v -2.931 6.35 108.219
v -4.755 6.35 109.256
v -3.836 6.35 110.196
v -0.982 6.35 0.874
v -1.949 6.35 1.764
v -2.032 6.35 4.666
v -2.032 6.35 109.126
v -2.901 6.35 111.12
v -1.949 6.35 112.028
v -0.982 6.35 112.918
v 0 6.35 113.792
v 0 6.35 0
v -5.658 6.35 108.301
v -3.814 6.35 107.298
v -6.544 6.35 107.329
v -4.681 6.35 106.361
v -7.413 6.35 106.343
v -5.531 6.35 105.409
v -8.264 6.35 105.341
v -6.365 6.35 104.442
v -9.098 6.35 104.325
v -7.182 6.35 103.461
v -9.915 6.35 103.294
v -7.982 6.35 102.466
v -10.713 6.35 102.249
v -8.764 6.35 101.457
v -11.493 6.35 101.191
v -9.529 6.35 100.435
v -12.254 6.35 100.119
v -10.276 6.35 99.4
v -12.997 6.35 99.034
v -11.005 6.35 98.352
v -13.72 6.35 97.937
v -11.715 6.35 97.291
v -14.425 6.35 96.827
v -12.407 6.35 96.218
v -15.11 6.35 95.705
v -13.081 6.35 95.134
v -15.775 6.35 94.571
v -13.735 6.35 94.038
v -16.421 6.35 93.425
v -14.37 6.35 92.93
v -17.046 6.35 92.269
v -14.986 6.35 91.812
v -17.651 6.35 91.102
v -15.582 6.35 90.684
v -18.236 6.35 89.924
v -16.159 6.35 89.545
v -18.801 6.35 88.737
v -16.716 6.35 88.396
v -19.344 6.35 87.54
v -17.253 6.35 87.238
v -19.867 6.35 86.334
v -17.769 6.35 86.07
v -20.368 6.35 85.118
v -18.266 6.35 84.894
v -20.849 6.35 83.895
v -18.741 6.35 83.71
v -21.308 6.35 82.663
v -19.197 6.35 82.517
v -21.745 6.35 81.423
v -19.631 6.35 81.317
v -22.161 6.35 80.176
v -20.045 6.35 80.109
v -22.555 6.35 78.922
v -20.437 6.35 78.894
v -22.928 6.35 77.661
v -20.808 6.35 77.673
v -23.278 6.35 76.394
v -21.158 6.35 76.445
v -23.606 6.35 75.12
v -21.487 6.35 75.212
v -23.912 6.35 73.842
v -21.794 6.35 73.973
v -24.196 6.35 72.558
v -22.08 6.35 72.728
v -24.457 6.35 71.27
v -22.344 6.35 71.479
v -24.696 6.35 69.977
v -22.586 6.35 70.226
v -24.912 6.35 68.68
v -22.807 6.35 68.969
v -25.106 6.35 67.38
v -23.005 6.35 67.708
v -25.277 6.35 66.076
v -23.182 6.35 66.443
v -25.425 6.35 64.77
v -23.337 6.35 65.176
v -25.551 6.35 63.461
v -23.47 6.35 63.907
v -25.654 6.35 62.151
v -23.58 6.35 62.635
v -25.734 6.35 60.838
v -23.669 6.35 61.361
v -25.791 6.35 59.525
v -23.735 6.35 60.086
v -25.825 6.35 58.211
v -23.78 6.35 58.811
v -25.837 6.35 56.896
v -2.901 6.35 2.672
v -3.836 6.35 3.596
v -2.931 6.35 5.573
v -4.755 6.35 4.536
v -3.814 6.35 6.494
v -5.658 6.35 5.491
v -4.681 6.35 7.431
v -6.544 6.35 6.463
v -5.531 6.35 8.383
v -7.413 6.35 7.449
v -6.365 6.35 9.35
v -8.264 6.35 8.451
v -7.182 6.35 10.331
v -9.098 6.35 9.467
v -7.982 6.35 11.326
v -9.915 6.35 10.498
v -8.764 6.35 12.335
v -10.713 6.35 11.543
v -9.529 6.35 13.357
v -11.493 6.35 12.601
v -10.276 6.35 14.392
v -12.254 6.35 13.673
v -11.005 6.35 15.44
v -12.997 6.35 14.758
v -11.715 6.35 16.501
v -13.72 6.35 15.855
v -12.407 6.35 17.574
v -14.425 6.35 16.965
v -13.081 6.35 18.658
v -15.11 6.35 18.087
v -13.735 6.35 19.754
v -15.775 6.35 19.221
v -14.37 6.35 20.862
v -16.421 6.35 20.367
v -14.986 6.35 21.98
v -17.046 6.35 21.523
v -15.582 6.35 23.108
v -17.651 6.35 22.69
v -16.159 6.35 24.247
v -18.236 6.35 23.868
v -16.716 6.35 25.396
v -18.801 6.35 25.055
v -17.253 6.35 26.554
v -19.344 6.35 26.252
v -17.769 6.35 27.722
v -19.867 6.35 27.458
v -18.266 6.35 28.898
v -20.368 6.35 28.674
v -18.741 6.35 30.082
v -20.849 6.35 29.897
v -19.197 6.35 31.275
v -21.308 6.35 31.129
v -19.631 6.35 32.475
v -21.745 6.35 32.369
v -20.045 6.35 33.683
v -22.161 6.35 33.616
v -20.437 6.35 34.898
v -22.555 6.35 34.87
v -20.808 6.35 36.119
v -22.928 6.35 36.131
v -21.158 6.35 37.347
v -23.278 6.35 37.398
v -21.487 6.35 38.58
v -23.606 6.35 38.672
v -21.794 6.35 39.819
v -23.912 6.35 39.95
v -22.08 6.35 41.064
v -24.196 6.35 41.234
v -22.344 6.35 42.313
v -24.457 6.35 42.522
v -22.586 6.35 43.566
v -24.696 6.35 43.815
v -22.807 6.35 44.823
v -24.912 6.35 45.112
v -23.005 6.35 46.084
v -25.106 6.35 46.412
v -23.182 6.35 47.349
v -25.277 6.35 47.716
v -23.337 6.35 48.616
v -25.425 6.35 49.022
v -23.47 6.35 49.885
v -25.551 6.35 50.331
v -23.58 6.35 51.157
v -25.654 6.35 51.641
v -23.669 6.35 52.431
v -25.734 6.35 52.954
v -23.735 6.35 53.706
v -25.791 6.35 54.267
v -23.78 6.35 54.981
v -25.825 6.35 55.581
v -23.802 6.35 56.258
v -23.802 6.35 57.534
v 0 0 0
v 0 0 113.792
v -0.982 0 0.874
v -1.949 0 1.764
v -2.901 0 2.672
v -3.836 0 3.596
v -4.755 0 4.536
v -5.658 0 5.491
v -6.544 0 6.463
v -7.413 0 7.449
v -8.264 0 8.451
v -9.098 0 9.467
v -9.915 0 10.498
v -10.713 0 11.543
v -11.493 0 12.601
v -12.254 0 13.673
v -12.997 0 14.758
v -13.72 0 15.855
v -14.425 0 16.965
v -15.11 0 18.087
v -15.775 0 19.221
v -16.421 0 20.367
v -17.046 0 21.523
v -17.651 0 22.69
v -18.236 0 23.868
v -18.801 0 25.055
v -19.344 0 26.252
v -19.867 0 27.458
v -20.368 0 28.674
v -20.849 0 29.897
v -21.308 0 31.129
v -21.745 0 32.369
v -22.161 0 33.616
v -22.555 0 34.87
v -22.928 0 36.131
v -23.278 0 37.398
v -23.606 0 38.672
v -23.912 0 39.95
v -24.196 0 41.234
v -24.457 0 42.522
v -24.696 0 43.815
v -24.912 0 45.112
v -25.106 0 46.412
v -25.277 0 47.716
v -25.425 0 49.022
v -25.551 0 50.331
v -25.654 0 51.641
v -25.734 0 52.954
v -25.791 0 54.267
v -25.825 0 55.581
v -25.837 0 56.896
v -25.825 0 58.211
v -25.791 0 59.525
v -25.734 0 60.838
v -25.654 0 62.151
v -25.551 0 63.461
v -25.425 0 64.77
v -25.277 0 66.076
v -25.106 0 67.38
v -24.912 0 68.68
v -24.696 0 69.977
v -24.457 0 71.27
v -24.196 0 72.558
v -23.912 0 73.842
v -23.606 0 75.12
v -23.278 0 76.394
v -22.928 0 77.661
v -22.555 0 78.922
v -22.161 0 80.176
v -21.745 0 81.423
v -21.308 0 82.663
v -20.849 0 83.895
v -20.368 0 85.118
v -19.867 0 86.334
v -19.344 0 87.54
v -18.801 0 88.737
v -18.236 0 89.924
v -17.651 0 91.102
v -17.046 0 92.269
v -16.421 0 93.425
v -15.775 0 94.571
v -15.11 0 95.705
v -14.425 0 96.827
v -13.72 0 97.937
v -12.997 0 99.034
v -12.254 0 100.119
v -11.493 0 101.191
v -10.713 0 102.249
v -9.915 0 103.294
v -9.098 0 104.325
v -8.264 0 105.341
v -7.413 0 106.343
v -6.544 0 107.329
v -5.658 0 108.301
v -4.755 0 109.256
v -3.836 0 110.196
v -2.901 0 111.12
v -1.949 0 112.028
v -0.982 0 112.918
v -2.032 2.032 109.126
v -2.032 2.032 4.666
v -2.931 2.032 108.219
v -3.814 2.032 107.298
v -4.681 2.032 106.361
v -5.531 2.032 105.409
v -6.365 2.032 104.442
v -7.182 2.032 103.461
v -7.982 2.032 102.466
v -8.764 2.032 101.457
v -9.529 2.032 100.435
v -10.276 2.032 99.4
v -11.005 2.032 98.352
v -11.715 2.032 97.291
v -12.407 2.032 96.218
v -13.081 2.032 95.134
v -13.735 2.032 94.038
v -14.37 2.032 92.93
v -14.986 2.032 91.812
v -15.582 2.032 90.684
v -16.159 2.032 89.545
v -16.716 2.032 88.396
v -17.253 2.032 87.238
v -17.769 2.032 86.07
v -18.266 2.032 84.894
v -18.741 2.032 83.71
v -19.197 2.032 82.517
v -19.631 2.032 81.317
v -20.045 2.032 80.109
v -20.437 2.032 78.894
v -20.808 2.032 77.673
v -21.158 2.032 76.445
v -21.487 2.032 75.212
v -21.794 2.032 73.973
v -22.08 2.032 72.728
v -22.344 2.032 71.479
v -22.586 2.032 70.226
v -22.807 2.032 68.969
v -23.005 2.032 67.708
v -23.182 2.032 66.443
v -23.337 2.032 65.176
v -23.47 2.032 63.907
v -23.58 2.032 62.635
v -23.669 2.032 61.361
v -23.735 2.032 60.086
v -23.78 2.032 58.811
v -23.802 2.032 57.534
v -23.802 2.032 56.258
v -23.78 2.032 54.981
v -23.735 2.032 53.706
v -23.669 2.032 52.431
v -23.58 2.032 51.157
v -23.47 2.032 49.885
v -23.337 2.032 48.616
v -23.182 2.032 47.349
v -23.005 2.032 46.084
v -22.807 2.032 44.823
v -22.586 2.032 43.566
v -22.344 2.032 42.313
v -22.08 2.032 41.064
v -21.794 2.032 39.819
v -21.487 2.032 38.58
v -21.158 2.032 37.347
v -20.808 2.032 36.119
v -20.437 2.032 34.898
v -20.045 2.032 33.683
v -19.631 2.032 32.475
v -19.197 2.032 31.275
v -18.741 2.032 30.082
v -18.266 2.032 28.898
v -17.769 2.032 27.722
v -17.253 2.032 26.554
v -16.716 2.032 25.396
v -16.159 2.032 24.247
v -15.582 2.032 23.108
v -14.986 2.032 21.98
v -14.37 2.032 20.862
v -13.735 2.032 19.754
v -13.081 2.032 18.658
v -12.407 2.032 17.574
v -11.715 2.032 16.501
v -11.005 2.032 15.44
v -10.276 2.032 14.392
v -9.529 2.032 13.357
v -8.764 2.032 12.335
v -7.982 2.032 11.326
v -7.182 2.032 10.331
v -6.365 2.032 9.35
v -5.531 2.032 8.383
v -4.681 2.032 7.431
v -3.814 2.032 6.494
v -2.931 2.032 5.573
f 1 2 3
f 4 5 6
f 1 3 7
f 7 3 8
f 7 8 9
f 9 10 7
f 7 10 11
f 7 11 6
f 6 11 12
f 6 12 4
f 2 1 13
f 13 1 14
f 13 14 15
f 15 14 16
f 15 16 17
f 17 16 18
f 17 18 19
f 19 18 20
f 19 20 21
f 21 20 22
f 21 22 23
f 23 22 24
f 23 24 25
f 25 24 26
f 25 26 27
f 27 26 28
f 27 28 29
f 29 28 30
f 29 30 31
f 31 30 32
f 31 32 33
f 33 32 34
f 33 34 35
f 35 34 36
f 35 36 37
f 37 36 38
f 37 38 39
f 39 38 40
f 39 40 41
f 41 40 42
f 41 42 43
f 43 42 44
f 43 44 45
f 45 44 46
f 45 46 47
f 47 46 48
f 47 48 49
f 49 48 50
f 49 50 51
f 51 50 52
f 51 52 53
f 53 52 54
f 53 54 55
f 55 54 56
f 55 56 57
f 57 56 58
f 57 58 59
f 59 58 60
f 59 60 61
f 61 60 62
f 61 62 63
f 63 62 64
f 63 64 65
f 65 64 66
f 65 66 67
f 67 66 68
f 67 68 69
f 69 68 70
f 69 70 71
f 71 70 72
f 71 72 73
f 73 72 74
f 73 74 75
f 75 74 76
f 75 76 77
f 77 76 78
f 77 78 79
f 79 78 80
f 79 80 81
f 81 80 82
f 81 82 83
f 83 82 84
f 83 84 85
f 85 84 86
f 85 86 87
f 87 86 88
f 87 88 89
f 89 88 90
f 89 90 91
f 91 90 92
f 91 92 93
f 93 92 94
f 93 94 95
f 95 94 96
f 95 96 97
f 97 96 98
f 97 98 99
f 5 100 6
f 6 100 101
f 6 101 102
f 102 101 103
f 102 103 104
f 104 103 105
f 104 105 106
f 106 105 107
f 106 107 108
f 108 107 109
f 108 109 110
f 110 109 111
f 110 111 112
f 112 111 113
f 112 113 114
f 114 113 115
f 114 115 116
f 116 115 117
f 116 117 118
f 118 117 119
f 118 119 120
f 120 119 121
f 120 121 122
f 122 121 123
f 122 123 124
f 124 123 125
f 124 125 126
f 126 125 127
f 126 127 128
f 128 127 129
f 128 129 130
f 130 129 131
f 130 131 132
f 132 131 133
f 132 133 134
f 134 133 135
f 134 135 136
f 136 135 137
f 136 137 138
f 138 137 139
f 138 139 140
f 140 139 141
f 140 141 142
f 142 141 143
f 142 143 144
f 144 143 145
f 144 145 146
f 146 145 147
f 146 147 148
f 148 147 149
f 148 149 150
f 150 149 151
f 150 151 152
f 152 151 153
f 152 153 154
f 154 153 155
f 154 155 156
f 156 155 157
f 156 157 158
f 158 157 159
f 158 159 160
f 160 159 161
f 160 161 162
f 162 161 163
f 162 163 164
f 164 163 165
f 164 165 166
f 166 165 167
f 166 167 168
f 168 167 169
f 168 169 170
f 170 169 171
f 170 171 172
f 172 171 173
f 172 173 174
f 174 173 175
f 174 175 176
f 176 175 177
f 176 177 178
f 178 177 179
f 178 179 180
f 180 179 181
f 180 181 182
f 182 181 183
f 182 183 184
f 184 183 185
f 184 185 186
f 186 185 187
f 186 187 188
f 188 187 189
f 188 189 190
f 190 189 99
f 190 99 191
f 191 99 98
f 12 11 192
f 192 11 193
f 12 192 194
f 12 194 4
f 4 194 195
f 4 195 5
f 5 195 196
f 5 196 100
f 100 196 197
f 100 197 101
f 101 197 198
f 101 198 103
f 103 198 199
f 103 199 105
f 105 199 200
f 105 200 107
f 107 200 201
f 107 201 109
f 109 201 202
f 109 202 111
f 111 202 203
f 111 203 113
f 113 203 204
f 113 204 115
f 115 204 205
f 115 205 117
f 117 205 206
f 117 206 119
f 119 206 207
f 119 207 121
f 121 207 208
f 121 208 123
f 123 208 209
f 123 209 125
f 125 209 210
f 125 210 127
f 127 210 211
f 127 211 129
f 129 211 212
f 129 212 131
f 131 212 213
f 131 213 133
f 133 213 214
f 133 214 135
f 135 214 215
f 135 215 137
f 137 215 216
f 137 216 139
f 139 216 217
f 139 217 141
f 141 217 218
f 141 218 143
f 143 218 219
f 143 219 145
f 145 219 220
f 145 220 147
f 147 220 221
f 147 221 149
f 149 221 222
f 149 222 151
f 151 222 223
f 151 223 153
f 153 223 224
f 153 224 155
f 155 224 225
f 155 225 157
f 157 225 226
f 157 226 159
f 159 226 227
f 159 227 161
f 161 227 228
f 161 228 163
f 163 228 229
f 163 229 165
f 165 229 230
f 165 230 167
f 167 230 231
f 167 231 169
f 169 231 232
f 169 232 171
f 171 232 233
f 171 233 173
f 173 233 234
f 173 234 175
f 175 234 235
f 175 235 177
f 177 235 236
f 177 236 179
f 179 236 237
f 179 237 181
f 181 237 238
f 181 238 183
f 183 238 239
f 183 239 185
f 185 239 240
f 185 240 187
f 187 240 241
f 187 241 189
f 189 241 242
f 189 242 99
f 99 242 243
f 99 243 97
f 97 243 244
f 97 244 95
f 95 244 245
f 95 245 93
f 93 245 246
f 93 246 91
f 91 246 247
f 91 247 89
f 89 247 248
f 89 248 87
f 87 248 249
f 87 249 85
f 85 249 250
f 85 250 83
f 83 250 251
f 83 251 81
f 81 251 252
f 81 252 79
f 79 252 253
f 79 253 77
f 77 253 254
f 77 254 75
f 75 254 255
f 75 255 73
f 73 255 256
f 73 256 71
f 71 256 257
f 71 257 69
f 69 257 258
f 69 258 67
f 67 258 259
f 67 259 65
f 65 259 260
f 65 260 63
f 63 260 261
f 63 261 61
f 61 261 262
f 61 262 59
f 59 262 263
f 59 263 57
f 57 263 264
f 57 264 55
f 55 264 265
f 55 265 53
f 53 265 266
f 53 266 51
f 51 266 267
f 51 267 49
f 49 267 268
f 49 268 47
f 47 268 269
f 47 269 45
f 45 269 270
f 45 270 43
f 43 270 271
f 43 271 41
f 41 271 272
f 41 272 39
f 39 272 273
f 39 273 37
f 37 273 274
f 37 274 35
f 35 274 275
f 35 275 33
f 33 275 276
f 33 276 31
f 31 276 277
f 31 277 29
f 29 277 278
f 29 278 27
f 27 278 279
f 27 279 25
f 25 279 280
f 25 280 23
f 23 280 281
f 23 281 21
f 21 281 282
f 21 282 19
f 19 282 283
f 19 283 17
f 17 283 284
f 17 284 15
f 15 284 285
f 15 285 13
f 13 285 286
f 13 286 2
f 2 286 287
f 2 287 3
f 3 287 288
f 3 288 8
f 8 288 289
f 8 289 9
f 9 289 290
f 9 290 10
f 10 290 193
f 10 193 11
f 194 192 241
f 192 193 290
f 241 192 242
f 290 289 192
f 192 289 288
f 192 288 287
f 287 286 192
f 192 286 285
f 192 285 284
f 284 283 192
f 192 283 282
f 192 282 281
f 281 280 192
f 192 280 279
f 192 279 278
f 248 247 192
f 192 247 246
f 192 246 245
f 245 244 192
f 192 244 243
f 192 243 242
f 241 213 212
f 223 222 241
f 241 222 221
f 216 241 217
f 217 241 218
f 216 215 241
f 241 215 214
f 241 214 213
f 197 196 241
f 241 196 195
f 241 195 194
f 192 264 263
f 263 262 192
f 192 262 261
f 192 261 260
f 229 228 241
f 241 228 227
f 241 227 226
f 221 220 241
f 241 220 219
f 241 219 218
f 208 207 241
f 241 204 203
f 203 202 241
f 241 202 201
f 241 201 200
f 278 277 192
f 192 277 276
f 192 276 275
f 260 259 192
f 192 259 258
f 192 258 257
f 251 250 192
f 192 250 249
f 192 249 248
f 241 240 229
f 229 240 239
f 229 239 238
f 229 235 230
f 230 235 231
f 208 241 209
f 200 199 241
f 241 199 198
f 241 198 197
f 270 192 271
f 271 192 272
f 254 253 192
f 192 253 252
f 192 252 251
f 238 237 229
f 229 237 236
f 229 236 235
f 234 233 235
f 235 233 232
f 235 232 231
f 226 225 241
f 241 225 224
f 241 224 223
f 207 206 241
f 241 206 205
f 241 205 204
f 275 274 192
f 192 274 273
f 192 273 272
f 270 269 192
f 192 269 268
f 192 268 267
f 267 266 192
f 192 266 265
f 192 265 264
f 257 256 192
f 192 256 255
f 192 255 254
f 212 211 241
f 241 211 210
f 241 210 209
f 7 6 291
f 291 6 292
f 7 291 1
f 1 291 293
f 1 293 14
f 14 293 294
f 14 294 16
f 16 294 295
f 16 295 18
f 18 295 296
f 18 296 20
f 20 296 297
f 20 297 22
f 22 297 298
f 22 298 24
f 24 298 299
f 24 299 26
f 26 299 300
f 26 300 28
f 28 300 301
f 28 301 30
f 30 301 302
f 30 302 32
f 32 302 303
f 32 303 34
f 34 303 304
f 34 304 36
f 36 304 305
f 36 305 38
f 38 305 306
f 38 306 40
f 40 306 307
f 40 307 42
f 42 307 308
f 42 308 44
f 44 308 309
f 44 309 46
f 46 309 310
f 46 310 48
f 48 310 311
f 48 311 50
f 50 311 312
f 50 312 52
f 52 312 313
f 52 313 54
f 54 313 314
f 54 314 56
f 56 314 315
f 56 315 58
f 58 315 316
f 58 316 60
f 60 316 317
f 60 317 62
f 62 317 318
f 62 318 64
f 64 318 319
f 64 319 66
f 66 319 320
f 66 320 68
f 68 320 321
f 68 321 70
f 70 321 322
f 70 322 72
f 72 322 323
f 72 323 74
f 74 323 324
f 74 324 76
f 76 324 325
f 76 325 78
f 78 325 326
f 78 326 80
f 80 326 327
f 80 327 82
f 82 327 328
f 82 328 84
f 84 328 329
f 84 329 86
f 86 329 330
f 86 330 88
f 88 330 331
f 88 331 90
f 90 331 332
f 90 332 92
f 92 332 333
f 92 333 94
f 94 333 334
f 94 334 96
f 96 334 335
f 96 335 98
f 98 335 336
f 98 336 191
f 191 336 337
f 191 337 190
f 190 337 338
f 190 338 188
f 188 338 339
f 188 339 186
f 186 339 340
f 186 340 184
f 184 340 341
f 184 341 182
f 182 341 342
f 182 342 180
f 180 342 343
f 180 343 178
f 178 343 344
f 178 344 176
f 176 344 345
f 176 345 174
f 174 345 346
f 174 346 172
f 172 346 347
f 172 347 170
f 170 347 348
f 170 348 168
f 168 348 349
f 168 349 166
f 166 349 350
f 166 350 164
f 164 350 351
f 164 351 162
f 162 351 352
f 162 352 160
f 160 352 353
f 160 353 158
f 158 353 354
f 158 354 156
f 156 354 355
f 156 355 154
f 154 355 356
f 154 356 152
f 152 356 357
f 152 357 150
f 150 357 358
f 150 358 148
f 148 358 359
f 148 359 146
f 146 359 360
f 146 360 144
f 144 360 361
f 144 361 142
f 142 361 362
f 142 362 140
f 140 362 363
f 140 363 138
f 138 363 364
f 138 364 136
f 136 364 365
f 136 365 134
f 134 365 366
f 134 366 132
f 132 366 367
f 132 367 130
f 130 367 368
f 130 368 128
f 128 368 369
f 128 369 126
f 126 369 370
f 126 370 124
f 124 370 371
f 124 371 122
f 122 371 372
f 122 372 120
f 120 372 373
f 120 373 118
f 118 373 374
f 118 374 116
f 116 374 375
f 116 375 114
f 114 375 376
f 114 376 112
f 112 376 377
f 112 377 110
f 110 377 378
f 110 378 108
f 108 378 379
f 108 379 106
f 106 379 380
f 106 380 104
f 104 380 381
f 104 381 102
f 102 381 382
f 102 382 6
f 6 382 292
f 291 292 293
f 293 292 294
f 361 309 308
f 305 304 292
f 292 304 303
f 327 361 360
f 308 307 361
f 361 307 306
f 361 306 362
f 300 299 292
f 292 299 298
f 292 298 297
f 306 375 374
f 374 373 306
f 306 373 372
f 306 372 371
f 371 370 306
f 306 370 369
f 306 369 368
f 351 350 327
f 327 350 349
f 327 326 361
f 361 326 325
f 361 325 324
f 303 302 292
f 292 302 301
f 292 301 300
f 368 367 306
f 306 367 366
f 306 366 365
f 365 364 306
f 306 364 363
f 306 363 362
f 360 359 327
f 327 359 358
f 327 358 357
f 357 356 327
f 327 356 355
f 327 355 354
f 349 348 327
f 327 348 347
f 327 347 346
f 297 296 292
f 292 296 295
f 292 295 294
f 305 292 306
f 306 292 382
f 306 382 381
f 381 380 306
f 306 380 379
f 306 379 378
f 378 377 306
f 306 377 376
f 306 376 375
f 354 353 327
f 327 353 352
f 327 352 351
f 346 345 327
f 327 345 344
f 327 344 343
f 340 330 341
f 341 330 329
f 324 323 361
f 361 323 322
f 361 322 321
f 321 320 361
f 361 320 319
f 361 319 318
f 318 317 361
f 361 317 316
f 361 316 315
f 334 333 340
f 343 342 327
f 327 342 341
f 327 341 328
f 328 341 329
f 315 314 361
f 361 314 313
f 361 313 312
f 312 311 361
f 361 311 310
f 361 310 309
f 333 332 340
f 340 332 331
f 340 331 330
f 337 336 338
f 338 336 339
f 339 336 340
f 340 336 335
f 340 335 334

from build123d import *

# Parameters (mm, degrees)
BOSS_EXTRUDE1_DEPTH = 6.35
SHELL1_T            = -2.032


with BuildPart() as part:
    # Sketch1 → Boss-Extrude1 (new body)
    with BuildSketch(Plane(origin=(0, 0, 0), x_dir=(1, 0, 0), z_dir=(0, 1, 0))):
        with BuildLine():
            Line((0, -113.792), (0, 0))
            ThreePointArc((0, 0), (-25.836593541, -56.896), (0, -113.792))
        make_face()
    extrude(amount=BOSS_EXTRUDE1_DEPTH)

    # Shell1
    shell1_openings = [part.faces().sort_by_distance(p)[0] for p in [
        (-12.91829677, 6.35, 56.896),
    ]]
    offset(amount=SHELL1_T, openings=shell1_openings)


solid = part.part
